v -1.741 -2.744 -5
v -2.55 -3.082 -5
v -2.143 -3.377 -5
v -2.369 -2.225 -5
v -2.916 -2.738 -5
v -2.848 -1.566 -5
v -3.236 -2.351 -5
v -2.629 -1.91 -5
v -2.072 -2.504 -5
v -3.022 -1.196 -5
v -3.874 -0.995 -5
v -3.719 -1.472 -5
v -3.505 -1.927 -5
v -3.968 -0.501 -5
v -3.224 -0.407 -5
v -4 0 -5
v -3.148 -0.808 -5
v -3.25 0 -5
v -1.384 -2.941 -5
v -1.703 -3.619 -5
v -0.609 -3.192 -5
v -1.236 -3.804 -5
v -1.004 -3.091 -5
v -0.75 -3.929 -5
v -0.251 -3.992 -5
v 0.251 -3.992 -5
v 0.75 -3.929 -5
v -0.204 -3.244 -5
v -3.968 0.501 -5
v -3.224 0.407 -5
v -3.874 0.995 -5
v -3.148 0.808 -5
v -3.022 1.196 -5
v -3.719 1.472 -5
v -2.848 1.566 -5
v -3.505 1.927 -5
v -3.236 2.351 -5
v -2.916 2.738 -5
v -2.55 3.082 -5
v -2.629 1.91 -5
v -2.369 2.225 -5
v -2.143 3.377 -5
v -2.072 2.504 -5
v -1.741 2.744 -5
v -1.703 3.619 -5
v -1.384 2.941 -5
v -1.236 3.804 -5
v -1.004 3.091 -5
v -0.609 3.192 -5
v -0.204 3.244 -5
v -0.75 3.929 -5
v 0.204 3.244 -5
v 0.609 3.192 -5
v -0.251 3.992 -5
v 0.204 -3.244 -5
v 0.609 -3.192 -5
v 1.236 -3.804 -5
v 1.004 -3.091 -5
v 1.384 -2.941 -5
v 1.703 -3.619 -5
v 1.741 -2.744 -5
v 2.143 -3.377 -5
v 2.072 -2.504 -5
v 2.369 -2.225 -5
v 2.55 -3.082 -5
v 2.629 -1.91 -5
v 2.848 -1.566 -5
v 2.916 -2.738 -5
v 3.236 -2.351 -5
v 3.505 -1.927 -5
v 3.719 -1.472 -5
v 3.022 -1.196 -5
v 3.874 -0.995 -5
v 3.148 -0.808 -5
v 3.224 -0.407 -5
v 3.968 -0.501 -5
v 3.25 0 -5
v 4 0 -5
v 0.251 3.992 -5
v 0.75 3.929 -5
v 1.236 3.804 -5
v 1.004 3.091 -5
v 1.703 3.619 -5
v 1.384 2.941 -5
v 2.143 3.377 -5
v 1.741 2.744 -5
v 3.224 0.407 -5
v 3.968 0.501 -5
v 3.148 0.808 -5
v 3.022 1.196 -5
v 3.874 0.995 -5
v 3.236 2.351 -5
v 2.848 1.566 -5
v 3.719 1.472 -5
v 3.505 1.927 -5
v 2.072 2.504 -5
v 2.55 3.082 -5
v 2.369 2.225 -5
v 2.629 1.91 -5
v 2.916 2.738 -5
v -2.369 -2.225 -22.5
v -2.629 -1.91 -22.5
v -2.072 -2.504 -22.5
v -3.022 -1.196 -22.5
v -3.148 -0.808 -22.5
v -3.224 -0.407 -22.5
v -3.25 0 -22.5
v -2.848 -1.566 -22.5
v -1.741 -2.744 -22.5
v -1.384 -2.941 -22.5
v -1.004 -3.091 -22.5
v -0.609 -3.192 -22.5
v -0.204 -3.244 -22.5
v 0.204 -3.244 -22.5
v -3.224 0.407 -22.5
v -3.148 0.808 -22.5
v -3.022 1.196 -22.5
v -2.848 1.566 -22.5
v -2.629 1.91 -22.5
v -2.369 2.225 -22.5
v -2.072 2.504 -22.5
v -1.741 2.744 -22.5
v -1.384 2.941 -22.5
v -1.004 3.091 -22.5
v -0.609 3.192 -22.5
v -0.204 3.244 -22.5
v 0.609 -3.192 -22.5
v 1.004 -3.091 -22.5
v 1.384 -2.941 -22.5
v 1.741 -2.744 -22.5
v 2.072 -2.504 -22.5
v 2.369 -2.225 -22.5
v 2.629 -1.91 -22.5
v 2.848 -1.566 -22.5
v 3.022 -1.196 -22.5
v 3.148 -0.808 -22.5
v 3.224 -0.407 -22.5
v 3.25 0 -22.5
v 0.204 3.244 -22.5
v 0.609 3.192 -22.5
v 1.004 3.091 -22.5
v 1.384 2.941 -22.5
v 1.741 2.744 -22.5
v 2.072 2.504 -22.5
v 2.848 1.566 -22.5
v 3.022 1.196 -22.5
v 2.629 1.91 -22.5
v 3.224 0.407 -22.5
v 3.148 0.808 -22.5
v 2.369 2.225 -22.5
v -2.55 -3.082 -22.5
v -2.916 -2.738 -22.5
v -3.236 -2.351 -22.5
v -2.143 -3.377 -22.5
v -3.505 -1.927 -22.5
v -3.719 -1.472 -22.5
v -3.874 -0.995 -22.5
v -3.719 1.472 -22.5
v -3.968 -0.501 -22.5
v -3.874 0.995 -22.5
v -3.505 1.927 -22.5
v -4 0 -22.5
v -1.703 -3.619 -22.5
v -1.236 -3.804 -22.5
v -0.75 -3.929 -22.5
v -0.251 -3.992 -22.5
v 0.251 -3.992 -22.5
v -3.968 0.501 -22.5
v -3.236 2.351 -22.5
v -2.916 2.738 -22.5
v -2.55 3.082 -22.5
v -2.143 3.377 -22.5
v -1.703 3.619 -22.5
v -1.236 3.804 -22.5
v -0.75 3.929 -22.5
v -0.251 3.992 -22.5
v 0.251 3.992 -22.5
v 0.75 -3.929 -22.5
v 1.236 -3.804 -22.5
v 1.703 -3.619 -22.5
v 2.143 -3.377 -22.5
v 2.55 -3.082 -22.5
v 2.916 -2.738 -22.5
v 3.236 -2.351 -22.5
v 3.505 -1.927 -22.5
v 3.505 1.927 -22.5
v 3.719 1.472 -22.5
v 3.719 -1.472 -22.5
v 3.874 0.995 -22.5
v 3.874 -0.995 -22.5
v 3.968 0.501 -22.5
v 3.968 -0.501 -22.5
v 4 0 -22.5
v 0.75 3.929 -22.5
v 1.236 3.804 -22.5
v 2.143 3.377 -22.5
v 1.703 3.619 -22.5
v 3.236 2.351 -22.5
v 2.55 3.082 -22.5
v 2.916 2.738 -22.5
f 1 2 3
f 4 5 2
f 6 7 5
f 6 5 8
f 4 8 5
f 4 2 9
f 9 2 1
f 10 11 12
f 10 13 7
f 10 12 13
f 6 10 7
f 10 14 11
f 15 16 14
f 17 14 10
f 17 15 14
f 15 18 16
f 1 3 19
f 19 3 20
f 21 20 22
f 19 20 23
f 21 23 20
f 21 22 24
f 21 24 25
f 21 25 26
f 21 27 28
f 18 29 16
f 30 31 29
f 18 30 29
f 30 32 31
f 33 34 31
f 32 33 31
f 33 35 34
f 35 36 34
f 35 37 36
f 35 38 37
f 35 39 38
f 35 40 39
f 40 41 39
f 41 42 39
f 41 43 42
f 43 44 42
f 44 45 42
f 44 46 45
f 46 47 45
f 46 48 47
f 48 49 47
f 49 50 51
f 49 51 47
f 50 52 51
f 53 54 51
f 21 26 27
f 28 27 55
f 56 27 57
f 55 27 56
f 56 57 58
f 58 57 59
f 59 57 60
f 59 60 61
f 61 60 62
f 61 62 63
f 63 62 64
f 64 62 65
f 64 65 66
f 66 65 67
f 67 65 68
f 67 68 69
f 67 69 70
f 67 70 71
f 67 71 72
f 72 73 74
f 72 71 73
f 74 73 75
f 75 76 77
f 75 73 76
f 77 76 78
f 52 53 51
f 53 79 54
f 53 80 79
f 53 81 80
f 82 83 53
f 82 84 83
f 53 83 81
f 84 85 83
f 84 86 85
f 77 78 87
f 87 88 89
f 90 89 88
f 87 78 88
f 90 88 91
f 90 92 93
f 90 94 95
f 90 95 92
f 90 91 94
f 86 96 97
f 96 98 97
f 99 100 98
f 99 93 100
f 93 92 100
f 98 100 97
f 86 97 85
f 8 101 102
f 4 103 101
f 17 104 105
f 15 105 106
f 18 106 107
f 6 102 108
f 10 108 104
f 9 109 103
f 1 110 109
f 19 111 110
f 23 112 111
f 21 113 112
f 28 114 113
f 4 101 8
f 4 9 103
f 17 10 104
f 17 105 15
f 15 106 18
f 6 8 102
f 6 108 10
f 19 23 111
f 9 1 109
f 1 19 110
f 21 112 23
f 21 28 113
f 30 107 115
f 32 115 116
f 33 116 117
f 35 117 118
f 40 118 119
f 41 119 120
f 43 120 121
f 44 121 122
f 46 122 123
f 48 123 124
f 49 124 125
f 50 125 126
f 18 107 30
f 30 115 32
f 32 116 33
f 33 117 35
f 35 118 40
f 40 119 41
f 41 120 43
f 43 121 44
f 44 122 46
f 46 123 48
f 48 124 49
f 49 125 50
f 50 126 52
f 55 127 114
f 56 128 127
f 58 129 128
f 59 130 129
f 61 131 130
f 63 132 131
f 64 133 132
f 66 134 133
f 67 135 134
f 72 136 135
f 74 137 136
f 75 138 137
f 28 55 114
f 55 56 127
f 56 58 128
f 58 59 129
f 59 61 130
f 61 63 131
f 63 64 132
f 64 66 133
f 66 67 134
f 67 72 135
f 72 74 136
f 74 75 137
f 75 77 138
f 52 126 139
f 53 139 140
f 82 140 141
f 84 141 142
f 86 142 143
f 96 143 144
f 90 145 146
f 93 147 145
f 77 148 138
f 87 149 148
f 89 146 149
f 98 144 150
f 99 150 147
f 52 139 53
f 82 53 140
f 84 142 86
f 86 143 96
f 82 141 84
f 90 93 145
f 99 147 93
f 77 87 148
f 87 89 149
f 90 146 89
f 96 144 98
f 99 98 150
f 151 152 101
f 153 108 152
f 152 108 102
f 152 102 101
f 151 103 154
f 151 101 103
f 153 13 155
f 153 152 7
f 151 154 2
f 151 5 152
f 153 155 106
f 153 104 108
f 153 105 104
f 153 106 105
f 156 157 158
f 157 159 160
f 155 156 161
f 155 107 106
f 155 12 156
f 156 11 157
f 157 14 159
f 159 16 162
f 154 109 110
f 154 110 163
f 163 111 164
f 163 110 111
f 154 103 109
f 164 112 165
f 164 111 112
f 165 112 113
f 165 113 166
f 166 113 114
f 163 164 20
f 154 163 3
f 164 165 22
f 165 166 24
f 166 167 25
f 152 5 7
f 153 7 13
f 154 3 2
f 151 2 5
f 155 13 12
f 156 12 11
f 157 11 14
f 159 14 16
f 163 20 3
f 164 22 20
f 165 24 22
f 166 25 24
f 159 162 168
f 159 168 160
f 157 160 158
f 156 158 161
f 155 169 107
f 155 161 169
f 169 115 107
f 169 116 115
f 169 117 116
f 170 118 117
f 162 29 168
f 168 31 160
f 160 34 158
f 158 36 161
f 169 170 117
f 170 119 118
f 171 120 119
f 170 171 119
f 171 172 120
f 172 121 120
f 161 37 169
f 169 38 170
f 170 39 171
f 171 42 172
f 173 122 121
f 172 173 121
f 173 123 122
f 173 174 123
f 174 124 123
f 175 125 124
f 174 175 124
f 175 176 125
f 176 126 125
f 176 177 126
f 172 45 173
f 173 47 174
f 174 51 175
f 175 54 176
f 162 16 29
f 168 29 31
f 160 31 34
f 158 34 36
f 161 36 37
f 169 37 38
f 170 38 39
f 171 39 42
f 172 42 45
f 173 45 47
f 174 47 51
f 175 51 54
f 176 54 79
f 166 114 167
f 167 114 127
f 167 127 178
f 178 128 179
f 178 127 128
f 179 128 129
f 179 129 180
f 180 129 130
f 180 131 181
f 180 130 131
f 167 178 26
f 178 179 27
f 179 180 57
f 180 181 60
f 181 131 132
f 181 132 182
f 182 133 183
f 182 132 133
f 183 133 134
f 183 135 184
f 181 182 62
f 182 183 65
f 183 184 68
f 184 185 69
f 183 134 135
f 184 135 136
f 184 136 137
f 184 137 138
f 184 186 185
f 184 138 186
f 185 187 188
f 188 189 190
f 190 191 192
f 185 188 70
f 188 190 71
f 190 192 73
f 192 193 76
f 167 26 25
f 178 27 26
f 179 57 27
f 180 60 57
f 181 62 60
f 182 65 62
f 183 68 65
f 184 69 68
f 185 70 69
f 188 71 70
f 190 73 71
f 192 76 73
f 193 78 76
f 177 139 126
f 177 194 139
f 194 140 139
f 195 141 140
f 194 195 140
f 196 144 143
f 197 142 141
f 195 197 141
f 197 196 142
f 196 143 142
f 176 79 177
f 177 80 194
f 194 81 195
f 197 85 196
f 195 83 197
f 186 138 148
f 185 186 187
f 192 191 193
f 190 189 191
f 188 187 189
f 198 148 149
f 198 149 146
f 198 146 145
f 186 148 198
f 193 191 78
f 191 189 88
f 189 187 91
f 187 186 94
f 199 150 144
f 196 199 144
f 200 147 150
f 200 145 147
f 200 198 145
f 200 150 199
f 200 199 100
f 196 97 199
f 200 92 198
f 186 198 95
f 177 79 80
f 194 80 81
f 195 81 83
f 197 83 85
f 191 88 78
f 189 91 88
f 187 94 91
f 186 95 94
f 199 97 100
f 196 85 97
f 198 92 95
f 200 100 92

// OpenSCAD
$fn = 50;

difference() {
	union() {
		translate(v = [0, 0, -22.5]) {
			cylinder(h = 25.5, r = 4.0);
		}
	}
	union() {
		translate(v = [0, 0, 0]) {
			rotate(a = [0, 0, 0]) {
				difference() {
					union() {
						translate(v = [0, 0, -5]) {
							linear_extrude(height = 5) {
								polygon(points = [[5.914249999999999, 0.0], [2.957125, 5.1218907443321156], [-2.9571249999999982, 5.1218907443321156], [-5.914249999999999, 7.242867331857232e-16], [-2.9571250000000022, -5.121890744332115], [2.9571249999999956, -5.121890744332118]]);
							}
						}
					}
					union();
				}
			}
		}
		#cylinder(h = 3, r = 6.25);
		#translate(v = [0, 0, -100.0]) {
			cylinder(h = 200, r = 3.25);
		}
	}
}
